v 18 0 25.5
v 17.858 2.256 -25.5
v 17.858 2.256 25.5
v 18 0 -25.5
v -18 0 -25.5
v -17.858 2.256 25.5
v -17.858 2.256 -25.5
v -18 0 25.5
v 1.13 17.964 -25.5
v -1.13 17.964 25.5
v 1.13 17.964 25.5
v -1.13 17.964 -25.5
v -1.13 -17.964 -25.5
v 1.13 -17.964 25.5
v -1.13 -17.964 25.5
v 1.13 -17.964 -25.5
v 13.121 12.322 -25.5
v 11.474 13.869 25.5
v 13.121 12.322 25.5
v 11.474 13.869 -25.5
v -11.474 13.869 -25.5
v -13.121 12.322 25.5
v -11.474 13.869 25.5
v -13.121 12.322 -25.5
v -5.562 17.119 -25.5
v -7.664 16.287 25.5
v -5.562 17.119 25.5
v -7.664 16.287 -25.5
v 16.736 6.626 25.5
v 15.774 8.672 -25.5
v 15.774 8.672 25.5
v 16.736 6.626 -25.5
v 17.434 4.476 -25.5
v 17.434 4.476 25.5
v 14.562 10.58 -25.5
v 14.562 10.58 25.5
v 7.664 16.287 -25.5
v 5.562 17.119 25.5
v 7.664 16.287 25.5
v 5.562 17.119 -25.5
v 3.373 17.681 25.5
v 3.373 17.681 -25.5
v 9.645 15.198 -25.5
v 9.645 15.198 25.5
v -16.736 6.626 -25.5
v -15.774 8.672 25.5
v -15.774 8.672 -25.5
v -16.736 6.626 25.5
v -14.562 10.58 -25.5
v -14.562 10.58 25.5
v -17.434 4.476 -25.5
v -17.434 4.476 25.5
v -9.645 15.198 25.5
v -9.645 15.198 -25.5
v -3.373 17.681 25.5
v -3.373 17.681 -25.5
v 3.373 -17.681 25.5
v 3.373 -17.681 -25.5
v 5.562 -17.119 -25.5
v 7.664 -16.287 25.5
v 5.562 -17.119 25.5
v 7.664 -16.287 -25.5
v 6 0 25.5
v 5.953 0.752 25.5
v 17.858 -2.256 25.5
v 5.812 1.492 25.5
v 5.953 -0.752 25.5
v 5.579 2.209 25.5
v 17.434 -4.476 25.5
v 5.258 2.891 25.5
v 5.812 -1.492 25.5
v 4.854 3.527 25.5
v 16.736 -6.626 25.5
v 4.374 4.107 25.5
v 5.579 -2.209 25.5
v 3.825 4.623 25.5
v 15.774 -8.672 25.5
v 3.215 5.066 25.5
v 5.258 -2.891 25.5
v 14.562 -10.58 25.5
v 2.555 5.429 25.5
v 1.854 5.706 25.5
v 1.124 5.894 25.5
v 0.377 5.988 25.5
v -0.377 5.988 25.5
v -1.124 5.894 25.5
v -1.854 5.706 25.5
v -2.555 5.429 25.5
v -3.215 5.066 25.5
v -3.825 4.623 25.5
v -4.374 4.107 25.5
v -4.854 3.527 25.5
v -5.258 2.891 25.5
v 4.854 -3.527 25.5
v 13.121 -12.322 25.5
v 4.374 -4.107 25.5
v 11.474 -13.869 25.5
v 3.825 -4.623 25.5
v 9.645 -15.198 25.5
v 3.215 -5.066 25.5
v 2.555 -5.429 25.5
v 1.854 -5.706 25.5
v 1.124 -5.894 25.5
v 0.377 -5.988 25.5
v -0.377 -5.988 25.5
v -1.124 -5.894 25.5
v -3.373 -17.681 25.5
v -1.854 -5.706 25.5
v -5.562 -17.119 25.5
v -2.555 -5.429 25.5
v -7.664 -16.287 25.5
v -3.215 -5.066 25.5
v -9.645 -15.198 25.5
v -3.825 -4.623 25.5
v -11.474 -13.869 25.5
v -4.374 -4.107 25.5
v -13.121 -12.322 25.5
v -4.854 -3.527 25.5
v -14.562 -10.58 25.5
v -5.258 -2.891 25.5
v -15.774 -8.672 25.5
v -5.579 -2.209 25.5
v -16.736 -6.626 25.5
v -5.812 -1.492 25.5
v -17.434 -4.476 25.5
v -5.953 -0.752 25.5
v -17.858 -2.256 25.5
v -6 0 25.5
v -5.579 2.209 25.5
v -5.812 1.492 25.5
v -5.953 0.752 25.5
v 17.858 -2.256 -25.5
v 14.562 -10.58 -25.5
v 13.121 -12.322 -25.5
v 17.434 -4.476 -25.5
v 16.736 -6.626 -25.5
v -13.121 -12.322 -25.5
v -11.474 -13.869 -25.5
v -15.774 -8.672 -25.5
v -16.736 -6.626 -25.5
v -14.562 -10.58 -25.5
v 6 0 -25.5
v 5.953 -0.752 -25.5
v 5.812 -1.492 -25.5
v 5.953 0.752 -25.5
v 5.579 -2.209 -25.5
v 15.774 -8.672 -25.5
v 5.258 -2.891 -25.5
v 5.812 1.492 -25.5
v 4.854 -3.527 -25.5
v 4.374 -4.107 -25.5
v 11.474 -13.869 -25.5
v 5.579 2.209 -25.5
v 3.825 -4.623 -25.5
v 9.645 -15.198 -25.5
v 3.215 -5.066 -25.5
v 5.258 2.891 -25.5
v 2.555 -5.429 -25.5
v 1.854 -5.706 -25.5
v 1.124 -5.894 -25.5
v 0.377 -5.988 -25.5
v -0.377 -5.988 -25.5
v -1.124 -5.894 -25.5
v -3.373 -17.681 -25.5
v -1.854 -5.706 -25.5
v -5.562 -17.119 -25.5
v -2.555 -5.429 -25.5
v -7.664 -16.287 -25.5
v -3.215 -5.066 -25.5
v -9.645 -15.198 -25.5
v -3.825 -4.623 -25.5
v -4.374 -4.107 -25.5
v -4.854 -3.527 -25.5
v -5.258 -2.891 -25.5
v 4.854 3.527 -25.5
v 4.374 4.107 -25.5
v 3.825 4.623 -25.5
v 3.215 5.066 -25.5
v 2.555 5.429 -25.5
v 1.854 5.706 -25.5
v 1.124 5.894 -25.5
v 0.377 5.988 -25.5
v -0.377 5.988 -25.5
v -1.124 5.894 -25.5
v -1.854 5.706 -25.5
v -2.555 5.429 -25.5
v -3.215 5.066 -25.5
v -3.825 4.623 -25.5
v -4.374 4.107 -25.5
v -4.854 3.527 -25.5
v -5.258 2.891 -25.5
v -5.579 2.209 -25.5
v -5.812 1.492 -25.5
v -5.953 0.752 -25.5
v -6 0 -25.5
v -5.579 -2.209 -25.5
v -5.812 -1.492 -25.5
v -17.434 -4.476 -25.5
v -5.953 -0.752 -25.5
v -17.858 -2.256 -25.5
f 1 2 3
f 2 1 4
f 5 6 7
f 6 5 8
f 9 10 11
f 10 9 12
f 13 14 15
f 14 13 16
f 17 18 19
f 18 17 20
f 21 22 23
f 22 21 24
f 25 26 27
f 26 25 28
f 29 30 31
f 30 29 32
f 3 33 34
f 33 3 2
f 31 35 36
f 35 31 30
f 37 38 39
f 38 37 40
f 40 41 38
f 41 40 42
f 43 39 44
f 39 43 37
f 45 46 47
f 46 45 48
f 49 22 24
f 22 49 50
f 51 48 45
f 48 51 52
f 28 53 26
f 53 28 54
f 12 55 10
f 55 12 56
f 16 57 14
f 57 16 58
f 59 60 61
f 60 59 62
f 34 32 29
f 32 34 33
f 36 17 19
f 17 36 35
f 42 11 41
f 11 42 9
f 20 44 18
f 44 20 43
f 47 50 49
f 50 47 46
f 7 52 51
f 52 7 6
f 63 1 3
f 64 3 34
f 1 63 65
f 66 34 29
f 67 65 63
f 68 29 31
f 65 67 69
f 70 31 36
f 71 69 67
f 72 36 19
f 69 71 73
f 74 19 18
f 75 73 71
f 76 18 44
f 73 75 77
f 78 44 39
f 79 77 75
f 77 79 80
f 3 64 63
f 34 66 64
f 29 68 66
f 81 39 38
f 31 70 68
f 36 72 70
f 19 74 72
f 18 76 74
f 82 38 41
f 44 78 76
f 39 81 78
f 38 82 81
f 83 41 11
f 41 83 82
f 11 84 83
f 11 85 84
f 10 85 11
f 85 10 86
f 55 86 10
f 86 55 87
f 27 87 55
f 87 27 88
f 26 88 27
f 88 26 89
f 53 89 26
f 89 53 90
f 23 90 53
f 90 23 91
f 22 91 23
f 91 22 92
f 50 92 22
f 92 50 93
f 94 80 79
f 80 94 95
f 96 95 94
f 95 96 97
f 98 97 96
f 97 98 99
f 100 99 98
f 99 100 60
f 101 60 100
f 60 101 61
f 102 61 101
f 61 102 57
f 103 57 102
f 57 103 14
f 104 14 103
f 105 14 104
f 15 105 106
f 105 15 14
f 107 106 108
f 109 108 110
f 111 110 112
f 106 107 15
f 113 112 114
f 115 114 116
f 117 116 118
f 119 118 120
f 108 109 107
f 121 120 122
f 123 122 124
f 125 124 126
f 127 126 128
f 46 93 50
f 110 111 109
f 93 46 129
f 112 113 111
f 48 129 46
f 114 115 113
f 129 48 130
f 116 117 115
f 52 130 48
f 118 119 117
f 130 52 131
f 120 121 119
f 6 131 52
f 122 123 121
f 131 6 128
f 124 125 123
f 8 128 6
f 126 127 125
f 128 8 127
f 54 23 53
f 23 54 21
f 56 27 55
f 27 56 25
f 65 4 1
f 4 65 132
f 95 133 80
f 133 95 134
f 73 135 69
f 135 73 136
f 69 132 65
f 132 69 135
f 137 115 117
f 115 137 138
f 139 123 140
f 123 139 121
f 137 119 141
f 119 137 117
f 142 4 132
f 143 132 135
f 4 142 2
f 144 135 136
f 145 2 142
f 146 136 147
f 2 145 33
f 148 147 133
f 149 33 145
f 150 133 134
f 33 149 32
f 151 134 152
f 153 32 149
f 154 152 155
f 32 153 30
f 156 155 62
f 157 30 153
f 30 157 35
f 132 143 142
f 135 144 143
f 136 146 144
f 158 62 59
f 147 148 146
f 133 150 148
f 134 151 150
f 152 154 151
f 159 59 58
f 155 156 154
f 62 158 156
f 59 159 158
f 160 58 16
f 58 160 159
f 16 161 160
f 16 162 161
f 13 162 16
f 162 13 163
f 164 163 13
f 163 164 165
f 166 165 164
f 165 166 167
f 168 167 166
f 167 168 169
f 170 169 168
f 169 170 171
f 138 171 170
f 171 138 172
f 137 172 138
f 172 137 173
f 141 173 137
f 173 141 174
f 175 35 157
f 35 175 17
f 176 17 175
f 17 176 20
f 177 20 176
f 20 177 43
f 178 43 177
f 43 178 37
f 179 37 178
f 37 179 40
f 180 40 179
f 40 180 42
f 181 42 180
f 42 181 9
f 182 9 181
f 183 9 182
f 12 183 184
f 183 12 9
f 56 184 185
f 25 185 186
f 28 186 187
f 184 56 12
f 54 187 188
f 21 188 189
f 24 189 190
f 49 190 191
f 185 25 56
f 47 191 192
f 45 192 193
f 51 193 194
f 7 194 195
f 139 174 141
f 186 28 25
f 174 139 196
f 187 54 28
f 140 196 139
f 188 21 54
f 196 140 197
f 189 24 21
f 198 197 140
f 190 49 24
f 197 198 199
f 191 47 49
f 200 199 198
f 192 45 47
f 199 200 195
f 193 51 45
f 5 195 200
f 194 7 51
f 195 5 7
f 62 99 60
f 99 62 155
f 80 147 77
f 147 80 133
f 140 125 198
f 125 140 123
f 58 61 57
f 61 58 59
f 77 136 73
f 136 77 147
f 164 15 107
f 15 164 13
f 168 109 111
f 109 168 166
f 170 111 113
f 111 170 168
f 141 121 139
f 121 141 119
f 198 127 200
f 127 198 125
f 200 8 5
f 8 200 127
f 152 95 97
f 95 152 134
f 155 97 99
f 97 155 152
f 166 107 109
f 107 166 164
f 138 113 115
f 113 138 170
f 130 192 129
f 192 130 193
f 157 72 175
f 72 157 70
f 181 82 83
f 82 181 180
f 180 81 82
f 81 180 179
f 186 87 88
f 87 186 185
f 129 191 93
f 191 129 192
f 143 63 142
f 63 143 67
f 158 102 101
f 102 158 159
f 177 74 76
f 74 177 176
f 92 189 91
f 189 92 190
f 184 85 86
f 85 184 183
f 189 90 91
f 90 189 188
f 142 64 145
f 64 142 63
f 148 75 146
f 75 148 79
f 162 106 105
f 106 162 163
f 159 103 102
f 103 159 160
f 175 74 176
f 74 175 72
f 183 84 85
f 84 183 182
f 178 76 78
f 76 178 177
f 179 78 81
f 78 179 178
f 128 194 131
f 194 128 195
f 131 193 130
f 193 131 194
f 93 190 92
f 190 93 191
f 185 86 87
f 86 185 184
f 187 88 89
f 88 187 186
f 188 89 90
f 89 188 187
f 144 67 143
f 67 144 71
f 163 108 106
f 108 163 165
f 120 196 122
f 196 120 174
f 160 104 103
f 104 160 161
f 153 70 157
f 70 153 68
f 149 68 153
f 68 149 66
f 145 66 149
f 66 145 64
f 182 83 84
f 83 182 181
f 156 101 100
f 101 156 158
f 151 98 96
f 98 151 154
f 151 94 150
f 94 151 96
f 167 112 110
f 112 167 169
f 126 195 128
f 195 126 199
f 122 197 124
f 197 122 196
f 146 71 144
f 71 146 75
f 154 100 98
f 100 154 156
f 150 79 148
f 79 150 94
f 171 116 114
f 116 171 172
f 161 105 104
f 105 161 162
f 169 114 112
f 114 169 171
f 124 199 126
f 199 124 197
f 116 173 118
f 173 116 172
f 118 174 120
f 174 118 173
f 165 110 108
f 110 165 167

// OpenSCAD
$fn = 50;


difference() {
	union() {
		translate(v = [0, 0, -25.5000000000]) {
			cylinder(h = 51, r = 18.0000000000);
		}
	}
	union() {
		translate(v = [0, 0, -100.0000000000]) {
			cylinder(h = 200, r = 6);
		}
	}
}
